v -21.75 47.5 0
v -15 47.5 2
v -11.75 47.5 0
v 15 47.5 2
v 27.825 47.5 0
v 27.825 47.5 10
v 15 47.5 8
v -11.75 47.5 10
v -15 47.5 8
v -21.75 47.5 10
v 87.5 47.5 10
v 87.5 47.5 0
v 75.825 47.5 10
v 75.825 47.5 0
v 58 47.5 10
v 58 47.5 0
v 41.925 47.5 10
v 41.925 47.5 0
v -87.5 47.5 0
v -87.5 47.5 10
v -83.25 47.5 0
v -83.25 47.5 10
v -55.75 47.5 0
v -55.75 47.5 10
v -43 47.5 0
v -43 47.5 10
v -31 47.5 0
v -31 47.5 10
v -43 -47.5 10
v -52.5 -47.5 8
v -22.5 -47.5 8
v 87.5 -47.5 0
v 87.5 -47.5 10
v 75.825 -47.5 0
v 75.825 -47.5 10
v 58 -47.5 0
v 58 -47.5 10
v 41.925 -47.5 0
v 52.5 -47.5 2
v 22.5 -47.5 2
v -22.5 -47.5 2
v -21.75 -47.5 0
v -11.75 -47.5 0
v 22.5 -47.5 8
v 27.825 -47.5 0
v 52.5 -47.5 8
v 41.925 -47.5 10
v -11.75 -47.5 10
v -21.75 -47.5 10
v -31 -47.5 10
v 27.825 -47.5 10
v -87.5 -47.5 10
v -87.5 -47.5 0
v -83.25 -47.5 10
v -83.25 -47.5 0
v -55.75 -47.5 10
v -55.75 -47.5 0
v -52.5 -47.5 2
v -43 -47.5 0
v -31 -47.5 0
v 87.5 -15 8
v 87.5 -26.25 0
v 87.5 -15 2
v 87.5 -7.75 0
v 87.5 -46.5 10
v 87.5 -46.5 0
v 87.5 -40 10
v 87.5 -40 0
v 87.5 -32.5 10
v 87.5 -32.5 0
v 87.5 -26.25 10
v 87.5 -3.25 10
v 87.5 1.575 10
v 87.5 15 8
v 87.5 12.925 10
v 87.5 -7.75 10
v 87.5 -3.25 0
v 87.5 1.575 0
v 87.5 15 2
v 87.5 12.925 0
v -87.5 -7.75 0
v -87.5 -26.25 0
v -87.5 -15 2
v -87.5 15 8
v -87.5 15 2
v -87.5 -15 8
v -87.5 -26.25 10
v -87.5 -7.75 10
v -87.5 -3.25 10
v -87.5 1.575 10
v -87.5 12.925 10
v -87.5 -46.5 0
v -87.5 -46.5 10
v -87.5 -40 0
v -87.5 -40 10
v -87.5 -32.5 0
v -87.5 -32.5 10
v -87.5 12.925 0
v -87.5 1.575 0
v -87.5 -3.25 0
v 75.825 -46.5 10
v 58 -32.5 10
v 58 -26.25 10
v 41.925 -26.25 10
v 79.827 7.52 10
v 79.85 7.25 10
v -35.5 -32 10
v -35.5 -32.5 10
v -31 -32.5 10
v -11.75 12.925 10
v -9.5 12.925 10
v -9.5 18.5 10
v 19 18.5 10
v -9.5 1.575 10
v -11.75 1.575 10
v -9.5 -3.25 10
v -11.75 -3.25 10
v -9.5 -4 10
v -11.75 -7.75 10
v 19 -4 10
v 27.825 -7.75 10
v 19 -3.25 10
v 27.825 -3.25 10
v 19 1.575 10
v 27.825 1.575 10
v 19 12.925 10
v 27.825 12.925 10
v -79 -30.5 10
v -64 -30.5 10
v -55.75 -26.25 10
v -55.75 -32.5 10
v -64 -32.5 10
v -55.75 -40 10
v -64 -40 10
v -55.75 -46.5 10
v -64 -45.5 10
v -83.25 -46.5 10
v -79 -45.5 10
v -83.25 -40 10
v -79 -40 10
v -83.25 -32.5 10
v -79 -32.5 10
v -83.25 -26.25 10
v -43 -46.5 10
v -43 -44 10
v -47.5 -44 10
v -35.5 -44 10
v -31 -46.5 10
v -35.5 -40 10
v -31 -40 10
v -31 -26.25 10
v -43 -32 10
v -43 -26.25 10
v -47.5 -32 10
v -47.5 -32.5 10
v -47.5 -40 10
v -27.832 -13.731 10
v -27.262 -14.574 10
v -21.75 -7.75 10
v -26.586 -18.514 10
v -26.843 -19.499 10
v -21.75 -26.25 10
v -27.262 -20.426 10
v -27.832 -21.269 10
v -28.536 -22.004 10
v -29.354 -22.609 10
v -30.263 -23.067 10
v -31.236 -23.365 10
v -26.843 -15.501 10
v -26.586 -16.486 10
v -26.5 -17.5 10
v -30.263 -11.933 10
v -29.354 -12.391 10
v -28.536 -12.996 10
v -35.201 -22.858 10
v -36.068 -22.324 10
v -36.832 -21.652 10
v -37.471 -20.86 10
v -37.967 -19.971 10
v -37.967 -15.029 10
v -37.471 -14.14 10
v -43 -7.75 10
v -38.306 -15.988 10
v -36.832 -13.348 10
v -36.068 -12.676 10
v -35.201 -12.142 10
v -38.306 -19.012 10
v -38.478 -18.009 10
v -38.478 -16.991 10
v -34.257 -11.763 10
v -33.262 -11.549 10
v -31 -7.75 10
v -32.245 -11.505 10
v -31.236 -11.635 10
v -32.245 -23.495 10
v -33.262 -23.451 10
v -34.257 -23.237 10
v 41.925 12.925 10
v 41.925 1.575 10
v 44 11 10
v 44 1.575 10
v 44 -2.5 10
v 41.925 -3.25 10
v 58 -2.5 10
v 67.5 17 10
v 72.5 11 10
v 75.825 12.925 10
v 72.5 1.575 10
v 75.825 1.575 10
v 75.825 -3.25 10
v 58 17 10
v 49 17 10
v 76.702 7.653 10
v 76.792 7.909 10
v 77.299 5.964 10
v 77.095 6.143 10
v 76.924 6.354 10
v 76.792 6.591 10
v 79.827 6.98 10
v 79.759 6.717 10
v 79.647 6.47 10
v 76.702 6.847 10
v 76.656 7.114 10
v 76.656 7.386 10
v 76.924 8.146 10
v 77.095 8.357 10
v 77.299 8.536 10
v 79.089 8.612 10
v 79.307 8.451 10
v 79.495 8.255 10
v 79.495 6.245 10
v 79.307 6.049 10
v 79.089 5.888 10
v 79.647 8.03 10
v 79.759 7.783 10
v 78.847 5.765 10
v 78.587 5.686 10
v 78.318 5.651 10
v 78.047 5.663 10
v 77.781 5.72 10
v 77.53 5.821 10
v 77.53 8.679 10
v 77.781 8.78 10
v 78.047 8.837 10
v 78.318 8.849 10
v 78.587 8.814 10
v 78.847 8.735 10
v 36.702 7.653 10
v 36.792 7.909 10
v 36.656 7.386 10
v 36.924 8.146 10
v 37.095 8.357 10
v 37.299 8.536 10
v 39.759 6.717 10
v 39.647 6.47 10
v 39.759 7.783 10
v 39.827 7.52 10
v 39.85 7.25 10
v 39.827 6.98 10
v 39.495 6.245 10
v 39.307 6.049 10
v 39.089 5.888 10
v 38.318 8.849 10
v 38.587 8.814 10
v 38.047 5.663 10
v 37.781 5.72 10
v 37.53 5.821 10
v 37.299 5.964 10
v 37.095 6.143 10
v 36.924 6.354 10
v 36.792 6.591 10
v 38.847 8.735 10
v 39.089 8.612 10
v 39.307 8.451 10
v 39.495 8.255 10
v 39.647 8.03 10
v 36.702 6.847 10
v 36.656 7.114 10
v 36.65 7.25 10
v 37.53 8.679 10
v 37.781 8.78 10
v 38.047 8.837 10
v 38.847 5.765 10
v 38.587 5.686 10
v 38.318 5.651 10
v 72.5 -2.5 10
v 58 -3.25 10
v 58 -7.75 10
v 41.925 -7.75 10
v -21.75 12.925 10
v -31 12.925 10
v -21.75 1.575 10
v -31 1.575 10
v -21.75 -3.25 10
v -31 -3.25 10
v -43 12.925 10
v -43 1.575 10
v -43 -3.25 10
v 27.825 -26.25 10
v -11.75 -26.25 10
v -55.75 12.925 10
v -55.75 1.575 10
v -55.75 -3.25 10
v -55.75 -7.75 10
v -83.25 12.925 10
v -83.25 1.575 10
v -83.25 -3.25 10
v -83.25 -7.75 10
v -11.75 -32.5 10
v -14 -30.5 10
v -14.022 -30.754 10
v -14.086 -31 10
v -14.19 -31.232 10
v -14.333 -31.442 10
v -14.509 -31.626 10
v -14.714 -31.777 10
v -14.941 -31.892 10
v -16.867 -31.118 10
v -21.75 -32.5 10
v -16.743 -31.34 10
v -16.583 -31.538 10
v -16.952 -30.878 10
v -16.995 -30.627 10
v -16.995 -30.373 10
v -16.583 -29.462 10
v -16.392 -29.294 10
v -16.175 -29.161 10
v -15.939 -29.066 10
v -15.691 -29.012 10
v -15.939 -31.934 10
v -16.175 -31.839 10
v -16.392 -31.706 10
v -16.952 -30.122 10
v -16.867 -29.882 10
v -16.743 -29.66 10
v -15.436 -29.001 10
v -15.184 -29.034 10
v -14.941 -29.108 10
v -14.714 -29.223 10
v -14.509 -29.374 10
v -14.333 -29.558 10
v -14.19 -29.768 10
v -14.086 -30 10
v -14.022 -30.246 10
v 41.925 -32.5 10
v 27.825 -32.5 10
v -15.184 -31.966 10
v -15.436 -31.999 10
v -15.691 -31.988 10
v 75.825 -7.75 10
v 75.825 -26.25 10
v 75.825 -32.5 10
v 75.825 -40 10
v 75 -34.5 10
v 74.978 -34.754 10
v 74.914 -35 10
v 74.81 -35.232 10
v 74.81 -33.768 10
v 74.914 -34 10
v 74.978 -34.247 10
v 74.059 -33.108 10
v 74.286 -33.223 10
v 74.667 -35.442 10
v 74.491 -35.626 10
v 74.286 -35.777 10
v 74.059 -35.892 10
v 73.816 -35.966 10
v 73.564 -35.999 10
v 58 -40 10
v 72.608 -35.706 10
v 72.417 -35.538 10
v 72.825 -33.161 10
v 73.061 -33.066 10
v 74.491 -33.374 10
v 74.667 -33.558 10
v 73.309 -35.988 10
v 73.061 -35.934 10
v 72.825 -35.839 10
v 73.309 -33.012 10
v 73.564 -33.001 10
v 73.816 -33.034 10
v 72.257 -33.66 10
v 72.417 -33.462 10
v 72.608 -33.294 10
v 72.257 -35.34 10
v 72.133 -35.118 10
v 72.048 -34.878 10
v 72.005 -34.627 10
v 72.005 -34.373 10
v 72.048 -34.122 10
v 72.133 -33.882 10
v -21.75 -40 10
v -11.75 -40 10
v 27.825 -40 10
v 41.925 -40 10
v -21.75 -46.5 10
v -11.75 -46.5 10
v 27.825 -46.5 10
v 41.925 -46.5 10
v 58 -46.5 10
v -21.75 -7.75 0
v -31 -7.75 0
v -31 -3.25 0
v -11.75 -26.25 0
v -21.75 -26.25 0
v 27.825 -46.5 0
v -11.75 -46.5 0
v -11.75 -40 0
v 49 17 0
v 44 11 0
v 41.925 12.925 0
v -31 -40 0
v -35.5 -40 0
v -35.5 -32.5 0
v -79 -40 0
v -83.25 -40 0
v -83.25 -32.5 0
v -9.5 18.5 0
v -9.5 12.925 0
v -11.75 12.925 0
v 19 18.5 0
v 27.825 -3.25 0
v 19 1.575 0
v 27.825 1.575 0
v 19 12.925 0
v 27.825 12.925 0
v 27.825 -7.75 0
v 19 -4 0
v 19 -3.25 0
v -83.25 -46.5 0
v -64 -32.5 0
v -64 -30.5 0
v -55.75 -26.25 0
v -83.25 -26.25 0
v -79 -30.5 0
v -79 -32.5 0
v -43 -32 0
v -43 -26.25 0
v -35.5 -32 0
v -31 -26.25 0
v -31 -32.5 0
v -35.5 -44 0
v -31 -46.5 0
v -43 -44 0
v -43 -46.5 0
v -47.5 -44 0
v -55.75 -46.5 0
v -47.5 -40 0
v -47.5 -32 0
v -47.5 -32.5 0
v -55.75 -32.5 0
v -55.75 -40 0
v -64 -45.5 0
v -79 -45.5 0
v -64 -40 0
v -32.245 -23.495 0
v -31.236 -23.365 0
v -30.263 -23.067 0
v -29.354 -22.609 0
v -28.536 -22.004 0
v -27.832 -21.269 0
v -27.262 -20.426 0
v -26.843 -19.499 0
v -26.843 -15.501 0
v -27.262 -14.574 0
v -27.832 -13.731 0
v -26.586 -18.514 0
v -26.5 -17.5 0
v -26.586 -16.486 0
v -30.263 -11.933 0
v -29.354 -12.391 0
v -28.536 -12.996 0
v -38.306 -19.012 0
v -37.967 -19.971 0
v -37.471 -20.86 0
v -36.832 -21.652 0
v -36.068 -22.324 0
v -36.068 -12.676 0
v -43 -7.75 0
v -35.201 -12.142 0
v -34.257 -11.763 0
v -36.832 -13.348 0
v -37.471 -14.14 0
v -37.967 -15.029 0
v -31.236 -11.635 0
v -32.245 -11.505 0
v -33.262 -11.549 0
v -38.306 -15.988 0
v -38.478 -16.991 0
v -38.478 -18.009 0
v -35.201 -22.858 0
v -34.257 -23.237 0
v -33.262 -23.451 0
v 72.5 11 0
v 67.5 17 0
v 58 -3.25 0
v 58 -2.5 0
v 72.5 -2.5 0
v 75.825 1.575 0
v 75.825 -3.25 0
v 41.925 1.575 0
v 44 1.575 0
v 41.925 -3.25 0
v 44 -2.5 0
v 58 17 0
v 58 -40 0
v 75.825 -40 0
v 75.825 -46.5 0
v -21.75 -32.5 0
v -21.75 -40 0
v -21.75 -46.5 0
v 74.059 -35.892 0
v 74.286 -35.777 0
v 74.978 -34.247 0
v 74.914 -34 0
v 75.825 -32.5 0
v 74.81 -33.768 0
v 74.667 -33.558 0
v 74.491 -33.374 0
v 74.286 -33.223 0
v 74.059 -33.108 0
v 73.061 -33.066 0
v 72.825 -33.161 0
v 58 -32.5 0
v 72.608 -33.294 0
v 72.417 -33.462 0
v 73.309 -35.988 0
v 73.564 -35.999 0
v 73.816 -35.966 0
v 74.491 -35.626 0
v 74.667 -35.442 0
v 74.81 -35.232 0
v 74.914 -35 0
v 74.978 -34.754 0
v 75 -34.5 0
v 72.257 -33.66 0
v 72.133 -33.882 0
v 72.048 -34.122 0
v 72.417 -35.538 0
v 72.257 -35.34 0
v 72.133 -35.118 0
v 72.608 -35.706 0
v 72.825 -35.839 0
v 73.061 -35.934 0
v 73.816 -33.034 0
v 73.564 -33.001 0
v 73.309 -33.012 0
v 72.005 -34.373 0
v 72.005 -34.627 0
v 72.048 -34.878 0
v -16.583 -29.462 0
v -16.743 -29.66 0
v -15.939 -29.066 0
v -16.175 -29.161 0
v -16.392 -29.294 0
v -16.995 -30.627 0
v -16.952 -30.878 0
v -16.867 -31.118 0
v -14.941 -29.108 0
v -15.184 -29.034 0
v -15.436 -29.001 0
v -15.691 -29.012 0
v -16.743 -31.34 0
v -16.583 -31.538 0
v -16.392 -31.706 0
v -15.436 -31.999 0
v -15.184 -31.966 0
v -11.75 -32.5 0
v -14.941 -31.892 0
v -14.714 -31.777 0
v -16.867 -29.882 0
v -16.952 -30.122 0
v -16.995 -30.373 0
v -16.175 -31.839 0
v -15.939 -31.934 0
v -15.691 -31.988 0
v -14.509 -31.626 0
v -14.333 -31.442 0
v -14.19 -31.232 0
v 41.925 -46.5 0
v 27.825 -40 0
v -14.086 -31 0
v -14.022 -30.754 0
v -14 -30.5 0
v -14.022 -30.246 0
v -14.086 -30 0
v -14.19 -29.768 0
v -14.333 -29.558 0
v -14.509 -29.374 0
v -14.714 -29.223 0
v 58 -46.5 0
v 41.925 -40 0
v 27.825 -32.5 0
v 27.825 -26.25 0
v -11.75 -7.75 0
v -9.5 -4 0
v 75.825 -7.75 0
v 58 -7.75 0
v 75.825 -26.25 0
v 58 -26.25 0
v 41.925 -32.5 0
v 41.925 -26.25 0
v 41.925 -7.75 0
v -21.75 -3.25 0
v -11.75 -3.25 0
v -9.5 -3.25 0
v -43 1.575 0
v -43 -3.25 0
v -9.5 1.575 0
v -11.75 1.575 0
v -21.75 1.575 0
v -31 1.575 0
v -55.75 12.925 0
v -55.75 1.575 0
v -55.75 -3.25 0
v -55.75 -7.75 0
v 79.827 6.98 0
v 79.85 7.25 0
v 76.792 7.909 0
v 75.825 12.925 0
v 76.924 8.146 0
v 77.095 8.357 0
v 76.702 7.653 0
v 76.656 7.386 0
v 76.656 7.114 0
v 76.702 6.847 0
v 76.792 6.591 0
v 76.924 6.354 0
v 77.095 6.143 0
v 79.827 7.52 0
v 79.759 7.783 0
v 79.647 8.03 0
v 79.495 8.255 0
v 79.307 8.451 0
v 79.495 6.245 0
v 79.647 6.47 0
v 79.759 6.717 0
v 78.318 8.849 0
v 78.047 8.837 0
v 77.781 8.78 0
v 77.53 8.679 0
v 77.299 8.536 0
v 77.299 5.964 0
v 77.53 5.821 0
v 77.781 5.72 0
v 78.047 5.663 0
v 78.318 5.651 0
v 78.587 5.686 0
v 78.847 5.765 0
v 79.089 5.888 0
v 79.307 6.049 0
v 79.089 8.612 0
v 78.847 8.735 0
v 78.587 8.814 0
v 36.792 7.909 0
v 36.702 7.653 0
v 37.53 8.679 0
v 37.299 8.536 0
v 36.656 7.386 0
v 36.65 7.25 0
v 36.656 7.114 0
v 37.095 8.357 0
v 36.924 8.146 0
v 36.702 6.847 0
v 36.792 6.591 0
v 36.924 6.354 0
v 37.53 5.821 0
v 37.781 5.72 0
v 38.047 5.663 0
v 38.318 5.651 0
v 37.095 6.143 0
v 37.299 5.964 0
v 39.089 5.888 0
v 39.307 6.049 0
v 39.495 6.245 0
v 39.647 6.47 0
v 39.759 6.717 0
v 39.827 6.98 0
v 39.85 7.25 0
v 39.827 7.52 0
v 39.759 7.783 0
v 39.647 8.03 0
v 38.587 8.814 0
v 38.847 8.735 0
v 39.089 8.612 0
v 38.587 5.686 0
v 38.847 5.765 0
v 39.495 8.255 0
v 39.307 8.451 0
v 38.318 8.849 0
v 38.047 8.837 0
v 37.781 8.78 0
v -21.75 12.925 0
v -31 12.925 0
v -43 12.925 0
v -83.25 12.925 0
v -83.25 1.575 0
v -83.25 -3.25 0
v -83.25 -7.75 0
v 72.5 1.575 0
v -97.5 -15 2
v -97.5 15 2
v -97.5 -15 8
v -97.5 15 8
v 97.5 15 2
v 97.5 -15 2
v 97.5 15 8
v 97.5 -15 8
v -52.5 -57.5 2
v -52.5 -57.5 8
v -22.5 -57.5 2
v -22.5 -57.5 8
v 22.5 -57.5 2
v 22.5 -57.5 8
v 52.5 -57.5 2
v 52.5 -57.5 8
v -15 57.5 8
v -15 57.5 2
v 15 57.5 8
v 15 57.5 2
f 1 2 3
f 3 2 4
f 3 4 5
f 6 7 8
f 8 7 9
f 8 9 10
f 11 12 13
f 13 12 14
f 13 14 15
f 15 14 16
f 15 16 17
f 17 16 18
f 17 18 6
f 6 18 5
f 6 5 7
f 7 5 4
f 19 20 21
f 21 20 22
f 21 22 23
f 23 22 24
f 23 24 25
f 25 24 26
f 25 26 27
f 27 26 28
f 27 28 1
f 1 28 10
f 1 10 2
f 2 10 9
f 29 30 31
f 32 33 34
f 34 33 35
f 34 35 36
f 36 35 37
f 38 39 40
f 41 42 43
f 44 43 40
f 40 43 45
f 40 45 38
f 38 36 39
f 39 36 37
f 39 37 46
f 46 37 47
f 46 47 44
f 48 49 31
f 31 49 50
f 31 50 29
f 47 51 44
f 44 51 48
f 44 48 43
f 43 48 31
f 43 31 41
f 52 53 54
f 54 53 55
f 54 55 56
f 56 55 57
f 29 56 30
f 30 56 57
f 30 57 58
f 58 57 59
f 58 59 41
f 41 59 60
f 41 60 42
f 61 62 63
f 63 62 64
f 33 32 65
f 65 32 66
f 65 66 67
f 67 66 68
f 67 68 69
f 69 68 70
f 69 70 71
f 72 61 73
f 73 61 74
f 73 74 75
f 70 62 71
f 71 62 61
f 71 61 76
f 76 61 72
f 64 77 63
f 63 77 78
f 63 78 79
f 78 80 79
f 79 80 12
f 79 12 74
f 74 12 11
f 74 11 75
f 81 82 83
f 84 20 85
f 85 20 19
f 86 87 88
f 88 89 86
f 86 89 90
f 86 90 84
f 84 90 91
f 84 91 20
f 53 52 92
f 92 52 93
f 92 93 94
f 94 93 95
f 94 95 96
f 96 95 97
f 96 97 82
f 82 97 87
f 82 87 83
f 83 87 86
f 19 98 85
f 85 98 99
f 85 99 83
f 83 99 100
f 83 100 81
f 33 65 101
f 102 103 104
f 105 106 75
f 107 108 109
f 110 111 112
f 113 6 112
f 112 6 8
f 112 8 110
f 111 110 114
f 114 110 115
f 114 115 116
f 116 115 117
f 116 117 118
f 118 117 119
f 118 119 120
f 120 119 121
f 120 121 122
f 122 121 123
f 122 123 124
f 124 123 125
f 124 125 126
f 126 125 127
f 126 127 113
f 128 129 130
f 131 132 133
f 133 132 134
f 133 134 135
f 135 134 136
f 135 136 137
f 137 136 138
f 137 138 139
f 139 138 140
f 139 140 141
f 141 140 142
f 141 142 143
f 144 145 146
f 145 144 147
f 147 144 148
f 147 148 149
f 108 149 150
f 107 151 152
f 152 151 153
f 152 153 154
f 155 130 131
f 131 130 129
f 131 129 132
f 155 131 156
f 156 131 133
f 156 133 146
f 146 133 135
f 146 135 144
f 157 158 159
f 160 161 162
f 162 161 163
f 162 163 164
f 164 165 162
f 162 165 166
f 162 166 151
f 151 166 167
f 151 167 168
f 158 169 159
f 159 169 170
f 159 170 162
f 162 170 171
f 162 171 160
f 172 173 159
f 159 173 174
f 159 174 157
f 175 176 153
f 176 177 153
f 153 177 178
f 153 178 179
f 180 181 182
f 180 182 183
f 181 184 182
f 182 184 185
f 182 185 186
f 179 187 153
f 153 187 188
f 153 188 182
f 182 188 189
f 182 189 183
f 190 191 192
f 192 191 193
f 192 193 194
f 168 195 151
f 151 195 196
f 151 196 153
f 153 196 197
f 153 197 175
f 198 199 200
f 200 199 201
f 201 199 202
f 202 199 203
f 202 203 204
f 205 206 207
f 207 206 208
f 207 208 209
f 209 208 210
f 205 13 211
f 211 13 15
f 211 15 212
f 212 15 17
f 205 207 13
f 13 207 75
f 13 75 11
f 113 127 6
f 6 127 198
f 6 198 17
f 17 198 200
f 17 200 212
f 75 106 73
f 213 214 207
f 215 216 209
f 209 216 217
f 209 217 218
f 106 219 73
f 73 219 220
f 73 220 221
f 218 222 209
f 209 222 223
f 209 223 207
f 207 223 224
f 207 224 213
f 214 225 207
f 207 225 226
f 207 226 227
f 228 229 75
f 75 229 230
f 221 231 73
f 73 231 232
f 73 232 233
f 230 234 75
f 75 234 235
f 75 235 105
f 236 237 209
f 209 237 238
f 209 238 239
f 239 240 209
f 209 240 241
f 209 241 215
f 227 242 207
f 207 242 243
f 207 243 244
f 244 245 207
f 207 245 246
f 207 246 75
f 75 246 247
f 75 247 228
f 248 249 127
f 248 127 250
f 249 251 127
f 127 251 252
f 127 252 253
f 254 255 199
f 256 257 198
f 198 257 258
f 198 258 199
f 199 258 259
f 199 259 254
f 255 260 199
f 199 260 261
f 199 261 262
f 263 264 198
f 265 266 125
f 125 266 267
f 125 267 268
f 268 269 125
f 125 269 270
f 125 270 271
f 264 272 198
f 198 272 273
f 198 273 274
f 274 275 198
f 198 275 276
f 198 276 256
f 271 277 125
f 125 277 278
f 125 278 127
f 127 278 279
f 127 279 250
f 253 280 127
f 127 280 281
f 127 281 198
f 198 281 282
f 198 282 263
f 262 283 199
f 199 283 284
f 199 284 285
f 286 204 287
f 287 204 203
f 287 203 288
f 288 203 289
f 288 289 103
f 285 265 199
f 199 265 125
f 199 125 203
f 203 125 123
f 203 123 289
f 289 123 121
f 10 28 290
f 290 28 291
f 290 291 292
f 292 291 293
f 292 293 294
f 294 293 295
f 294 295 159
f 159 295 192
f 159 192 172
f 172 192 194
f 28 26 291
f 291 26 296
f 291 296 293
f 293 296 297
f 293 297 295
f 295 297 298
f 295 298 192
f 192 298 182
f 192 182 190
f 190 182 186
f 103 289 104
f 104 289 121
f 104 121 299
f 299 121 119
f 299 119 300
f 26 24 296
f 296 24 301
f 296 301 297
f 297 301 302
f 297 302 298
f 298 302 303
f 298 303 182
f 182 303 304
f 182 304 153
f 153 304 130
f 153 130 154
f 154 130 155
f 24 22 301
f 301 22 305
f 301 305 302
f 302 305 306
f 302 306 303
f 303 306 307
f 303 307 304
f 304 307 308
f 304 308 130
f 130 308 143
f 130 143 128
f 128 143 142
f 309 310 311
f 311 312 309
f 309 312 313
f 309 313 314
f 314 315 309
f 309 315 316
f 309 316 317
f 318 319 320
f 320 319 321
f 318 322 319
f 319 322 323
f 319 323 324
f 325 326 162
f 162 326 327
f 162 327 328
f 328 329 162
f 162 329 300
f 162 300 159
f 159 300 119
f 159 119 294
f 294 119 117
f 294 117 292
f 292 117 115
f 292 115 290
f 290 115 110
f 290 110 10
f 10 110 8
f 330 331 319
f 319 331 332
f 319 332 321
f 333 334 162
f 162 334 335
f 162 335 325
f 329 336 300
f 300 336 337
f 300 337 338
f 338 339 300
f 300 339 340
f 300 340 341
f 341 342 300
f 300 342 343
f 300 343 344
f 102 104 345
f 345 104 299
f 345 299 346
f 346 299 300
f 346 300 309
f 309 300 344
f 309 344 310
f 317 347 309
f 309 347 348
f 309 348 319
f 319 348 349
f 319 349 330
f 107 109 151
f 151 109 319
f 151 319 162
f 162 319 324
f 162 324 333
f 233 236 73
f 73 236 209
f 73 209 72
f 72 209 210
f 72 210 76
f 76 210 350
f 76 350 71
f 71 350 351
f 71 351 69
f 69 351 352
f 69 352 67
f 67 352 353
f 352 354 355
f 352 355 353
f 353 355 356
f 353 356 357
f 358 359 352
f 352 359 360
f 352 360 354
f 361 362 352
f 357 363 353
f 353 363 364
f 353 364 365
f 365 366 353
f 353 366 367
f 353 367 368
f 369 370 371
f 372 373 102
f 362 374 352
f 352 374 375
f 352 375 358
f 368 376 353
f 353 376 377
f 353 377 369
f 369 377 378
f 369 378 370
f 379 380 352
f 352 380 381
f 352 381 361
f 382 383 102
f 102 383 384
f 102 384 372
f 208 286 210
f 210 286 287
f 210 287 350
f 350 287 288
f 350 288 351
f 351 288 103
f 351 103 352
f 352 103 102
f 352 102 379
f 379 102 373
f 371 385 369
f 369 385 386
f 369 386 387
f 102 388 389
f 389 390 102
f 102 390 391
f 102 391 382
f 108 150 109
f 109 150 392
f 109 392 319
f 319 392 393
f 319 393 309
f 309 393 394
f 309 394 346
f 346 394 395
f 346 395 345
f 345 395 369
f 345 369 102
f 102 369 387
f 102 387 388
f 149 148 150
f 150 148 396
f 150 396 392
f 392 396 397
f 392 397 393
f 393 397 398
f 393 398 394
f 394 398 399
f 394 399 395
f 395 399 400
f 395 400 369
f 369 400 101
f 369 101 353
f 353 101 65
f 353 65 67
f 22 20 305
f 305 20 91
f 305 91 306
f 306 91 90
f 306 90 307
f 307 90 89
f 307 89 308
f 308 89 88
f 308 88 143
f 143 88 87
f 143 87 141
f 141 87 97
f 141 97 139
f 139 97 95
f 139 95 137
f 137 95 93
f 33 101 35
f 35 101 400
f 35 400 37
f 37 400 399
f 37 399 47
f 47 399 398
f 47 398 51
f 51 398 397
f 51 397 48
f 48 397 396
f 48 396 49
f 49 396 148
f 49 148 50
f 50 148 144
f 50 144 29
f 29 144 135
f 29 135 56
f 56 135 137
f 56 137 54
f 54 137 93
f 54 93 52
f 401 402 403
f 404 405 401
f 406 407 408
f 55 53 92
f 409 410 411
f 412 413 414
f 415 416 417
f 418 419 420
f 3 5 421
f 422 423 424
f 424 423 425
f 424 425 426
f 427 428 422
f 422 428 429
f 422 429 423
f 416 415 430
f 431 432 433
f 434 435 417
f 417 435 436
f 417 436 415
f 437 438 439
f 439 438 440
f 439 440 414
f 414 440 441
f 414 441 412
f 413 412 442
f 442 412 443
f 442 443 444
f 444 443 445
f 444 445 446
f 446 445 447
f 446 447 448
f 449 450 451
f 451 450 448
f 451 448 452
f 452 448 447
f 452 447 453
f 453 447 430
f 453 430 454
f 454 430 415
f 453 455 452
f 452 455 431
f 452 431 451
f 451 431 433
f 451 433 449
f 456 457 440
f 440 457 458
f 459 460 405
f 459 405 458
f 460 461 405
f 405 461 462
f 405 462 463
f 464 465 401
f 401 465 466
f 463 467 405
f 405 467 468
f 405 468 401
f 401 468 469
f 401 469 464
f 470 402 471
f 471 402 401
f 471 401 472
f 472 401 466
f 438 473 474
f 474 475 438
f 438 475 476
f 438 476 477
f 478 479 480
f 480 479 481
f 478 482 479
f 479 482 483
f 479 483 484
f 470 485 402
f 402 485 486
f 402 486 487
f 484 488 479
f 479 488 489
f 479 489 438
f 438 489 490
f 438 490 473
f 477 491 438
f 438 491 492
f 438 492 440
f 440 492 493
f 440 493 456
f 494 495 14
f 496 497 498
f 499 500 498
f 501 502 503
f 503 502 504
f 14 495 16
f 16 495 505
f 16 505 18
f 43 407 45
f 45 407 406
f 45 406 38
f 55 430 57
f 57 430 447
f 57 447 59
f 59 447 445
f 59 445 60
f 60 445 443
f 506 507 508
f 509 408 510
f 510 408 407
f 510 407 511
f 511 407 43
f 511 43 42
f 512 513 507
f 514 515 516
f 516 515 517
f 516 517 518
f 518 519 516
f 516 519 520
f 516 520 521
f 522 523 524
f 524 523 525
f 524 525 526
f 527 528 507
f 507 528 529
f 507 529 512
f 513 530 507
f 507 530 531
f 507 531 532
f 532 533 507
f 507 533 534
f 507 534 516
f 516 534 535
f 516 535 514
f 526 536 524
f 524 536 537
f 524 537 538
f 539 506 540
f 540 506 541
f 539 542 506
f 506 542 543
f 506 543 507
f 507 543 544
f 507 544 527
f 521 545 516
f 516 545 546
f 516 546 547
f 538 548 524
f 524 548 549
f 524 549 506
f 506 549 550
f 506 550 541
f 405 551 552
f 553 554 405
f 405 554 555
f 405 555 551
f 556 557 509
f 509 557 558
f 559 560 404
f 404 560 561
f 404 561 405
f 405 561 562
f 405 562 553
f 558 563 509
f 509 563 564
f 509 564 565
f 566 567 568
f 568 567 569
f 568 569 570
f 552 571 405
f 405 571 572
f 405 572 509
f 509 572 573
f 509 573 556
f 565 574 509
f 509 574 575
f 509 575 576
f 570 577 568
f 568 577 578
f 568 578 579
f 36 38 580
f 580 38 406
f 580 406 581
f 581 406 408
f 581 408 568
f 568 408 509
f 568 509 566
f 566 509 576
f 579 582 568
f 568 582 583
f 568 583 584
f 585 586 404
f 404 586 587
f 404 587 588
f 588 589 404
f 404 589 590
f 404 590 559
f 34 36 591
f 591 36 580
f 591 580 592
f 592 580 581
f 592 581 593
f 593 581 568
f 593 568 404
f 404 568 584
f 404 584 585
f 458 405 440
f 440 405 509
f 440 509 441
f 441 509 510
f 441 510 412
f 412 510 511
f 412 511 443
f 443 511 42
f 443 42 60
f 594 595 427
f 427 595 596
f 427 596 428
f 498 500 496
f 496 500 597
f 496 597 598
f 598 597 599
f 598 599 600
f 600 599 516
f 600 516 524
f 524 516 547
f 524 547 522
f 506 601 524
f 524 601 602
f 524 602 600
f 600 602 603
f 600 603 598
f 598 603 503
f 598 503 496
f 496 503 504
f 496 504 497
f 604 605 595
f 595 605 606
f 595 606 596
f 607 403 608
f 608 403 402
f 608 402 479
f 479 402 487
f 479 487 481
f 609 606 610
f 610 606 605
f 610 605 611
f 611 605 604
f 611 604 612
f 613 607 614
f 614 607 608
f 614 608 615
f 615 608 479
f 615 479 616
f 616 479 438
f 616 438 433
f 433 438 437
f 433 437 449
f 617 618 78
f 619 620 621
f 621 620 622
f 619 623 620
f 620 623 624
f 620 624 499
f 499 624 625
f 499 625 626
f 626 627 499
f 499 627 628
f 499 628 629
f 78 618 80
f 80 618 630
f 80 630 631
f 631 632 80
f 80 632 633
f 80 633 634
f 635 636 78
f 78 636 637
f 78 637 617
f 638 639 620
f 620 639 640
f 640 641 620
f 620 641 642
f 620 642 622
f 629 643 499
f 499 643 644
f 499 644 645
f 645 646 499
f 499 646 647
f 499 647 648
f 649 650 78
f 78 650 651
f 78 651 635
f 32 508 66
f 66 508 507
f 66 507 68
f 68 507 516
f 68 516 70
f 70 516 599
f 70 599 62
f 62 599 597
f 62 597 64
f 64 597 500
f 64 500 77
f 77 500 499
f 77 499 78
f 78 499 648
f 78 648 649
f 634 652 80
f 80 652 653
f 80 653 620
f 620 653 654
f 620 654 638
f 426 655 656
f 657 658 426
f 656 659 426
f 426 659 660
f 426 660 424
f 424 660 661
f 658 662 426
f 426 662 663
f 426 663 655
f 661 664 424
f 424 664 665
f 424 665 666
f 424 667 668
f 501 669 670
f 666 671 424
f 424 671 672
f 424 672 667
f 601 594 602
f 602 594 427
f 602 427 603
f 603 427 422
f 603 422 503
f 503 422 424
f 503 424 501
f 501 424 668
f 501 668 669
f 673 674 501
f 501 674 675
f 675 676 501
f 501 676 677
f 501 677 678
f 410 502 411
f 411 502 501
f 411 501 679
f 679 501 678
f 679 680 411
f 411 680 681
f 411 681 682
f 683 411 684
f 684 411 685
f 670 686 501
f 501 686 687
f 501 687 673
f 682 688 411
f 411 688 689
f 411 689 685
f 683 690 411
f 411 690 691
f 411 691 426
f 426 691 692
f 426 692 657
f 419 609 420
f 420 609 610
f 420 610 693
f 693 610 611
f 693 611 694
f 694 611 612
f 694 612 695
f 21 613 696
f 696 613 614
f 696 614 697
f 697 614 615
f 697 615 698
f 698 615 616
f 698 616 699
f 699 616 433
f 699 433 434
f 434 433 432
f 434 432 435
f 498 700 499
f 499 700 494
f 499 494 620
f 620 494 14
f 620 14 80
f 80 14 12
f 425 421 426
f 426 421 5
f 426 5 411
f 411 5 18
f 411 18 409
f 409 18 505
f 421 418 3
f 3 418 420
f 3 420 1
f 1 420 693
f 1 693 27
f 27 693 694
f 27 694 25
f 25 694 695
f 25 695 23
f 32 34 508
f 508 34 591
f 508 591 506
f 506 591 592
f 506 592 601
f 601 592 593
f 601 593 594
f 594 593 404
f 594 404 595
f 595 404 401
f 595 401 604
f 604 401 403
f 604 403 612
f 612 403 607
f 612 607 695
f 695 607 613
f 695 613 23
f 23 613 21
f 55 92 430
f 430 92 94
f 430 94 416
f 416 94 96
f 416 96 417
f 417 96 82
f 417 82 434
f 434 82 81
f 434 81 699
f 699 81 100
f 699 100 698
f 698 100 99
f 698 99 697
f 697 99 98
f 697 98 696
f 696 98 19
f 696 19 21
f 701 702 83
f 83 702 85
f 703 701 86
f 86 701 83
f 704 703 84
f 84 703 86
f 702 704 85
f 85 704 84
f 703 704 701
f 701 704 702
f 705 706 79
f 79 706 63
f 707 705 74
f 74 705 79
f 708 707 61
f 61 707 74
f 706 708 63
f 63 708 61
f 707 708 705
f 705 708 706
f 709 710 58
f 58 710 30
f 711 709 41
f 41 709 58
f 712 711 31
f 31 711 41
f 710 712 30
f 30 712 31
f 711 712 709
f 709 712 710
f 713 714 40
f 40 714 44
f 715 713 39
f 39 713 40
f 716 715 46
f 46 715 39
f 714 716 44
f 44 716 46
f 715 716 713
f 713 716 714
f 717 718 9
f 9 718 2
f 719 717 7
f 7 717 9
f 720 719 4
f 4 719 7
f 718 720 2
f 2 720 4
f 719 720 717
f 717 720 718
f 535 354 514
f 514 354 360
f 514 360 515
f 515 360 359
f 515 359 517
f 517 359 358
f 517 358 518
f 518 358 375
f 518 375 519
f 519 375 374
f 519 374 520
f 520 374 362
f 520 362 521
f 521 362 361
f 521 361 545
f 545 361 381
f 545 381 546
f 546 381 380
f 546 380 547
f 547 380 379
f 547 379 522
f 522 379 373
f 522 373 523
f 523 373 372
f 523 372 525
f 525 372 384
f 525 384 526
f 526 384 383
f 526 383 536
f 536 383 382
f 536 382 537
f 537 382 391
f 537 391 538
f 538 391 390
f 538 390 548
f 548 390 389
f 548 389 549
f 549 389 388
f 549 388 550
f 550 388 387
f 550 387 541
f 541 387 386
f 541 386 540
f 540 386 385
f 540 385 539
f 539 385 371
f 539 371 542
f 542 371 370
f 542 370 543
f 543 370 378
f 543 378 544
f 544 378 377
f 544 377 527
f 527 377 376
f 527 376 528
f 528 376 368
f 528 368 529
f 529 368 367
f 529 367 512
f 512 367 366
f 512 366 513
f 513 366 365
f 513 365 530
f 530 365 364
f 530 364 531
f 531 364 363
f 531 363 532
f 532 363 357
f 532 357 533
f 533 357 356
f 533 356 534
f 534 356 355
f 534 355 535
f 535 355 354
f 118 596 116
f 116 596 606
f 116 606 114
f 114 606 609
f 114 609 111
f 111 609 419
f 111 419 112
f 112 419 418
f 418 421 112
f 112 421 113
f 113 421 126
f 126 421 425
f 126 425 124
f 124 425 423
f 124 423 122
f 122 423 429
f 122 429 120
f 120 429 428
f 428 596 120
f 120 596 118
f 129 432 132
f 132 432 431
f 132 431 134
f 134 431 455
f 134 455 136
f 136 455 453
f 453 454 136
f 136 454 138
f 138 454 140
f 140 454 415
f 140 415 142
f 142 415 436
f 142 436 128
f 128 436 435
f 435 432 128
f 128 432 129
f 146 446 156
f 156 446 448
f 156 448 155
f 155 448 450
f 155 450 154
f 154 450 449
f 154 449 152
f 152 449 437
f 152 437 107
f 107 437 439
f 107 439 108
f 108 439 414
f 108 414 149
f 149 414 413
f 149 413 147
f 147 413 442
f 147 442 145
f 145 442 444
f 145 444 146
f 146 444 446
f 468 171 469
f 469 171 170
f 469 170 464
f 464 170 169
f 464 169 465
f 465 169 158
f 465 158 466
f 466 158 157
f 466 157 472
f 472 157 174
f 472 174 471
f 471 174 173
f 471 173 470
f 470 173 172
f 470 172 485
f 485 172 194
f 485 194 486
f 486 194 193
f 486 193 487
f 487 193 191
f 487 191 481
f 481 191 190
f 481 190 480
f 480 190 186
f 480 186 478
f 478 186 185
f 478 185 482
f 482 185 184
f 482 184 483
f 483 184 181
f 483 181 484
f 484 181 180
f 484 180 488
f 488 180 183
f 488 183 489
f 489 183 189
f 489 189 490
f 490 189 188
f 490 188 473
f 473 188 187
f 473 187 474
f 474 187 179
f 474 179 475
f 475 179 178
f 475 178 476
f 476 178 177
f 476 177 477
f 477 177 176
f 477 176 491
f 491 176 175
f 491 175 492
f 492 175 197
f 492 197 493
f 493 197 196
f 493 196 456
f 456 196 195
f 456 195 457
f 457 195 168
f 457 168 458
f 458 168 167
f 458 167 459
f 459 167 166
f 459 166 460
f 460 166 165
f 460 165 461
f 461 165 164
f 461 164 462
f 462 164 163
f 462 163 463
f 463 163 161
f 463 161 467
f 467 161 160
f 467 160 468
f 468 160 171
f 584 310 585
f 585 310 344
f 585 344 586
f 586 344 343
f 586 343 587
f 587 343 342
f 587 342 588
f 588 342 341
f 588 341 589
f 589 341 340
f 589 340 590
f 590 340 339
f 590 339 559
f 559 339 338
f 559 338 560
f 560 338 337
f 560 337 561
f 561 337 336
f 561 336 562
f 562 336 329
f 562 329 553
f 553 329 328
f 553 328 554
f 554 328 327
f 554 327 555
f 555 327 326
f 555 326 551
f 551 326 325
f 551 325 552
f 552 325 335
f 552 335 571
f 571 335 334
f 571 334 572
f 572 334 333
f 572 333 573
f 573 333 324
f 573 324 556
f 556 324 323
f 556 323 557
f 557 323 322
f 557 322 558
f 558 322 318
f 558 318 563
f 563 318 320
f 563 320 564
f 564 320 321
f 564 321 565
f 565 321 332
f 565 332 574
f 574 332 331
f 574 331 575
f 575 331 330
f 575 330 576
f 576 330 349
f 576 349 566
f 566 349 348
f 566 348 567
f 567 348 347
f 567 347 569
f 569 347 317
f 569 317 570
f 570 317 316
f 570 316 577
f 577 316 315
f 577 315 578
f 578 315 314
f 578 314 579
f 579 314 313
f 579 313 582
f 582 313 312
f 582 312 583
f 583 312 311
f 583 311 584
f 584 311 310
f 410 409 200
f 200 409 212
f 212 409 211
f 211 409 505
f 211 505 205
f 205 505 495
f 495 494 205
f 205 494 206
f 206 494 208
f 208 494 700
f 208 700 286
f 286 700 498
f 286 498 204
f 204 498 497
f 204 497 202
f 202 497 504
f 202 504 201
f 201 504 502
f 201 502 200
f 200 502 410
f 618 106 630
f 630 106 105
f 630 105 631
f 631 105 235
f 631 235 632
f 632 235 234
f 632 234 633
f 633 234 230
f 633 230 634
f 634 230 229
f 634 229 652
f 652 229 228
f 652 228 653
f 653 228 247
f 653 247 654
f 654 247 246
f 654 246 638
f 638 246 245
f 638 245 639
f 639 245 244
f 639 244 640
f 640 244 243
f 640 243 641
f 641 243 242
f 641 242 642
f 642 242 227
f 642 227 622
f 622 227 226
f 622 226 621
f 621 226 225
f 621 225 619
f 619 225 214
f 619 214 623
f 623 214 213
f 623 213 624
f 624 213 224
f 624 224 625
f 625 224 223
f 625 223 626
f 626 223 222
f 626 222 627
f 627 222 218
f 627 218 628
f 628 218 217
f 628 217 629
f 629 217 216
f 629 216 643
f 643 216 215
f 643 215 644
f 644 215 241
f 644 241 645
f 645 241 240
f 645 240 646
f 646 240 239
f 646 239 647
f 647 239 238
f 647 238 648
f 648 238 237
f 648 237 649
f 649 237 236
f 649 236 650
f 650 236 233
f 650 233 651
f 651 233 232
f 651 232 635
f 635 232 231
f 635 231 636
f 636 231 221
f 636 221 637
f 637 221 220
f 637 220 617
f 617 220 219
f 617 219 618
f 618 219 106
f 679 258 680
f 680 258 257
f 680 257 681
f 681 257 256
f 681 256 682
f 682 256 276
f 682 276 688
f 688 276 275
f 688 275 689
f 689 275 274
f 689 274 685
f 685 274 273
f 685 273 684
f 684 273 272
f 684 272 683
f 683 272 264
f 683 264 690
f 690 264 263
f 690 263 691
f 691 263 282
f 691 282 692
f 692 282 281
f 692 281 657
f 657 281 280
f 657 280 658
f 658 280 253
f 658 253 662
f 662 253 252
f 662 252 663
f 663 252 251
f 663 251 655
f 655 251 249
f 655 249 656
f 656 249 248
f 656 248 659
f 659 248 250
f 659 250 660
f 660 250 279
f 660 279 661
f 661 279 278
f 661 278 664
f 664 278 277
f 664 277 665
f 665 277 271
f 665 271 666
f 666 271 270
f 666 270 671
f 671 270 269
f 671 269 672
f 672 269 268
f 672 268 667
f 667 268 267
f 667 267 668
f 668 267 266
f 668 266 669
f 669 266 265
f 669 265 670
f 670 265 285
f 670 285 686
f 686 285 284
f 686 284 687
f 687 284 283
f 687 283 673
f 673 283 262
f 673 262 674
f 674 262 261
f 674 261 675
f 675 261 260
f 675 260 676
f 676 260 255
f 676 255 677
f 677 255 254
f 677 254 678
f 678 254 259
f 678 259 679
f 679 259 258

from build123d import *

# Parameters (mm, degrees)
ESBO_O1_W                = 175
ESBO_O1_H                = 95
RESSALTO_EXTRUS_O1_DEPTH = 10
ESBO_O2_W                = 6
ESBO_O2_H                = 30
RESSALTO_EXTRUS_O2_DEPTH = 10
ESBO_O3_W                = 6
ESBO_O3_H                = 30
RESSALTO_EXTRUS_O3_DEPTH = 10
ESBO_O4_W                = 30
ESBO_O4_H                = 6
RESSALTO_EXTRUS_O4_DEPTH = 10
ESBO_O5_W                = 30
ESBO_O5_H                = 6
RESSALTO_EXTRUS_O5_DEPTH = 10
ESBO_O7_R                = 1.5
ESBO_O7_R_2              = 1.6
ESBO_O7_R_3              = 6
ESBO_O7_W                = 28.5
ESBO_O7_H                = 22.5
ESBO_O7_W_2              = 15
ESBO_O7_H_2              = 15
ESBO_O7_W_3              = 12
ESBO_O7_H_3              = 12
CORTE_EXTRUS_O2_DEPTH    = 10


with BuildPart() as part:
    # Esboço1 → Ressalto-extrusão1 (new body)
    with BuildSketch(Plane.XY):
        Rectangle(ESBO_O1_W, ESBO_O1_H)
    extrude(amount=RESSALTO_EXTRUS_O1_DEPTH)

    # Esboço2 → Ressalto-extrusão2 (add)
    with BuildSketch(Plane.ZY.offset(87.5)):
        with Locations((5, 0)):
            Rectangle(ESBO_O2_W, ESBO_O2_H)
    extrude(amount=RESSALTO_EXTRUS_O2_DEPTH)

    # Esboço3 → Ressalto-extrusão3 (add)
    with BuildSketch(Plane(origin=(87.5, 0, 0), x_dir=(0, 0, -1), z_dir=(1, 0, 0))):
        with Locations((-5, 0)):
            Rectangle(ESBO_O3_W, ESBO_O3_H)
    extrude(amount=RESSALTO_EXTRUS_O3_DEPTH)

    # Esboço4 → Ressalto-extrusão4 (add)
    with BuildSketch(Plane.XZ.offset(47.5)):
        with Locations((37.5, 5)):
            Rectangle(ESBO_O4_W, ESBO_O4_H)
        with Locations((-37.5, 5)):
            Rectangle(ESBO_O4_W, ESBO_O4_H)
    extrude(amount=RESSALTO_EXTRUS_O4_DEPTH)

    # Esboço5 → Ressalto-extrusão5 (add)
    with BuildSketch(Plane(origin=(0, 47.5, 0), x_dir=(1, 0, 0), z_dir=(0, 1, 0))):
        with Locations((0, -5)):
            Rectangle(ESBO_O5_W, ESBO_O5_H)
    extrude(amount=RESSALTO_EXTRUS_O5_DEPTH)

    # Esboço7 → Corte-extrusão2 (cut)
    with BuildSketch(Plane.XY.offset(10)):
        with Locations((73.5, -34.5)):
            Circle(ESBO_O7_R)
        with Locations((-15.5, -30.5)):
            Circle(ESBO_O7_R)
        with Locations((78.25, 7.25)):
            Circle(ESBO_O7_R_2)
        with Locations((38.25, 7.25)):
            Circle(ESBO_O7_R_2)
        with Locations((-32.5, -17.5)):
            Circle(ESBO_O7_R_3)
        Polygon((72.5, -2.5), (44, -2.5), (44, 11), (49, 17), (67.5, 17), (72.5, 11), align=None)
        with Locations((4.75, 7.25)):
            Rectangle(ESBO_O7_W, ESBO_O7_H)
        with Locations((-71.5, -38)):
            Rectangle(ESBO_O7_W_2, ESBO_O7_H_2)
        with Locations((-41.5, -38)):
            Rectangle(ESBO_O7_W_3, ESBO_O7_H_3)
    extrude(amount=-CORTE_EXTRUS_O2_DEPTH, mode=Mode.SUBTRACT)


solid = part.part
